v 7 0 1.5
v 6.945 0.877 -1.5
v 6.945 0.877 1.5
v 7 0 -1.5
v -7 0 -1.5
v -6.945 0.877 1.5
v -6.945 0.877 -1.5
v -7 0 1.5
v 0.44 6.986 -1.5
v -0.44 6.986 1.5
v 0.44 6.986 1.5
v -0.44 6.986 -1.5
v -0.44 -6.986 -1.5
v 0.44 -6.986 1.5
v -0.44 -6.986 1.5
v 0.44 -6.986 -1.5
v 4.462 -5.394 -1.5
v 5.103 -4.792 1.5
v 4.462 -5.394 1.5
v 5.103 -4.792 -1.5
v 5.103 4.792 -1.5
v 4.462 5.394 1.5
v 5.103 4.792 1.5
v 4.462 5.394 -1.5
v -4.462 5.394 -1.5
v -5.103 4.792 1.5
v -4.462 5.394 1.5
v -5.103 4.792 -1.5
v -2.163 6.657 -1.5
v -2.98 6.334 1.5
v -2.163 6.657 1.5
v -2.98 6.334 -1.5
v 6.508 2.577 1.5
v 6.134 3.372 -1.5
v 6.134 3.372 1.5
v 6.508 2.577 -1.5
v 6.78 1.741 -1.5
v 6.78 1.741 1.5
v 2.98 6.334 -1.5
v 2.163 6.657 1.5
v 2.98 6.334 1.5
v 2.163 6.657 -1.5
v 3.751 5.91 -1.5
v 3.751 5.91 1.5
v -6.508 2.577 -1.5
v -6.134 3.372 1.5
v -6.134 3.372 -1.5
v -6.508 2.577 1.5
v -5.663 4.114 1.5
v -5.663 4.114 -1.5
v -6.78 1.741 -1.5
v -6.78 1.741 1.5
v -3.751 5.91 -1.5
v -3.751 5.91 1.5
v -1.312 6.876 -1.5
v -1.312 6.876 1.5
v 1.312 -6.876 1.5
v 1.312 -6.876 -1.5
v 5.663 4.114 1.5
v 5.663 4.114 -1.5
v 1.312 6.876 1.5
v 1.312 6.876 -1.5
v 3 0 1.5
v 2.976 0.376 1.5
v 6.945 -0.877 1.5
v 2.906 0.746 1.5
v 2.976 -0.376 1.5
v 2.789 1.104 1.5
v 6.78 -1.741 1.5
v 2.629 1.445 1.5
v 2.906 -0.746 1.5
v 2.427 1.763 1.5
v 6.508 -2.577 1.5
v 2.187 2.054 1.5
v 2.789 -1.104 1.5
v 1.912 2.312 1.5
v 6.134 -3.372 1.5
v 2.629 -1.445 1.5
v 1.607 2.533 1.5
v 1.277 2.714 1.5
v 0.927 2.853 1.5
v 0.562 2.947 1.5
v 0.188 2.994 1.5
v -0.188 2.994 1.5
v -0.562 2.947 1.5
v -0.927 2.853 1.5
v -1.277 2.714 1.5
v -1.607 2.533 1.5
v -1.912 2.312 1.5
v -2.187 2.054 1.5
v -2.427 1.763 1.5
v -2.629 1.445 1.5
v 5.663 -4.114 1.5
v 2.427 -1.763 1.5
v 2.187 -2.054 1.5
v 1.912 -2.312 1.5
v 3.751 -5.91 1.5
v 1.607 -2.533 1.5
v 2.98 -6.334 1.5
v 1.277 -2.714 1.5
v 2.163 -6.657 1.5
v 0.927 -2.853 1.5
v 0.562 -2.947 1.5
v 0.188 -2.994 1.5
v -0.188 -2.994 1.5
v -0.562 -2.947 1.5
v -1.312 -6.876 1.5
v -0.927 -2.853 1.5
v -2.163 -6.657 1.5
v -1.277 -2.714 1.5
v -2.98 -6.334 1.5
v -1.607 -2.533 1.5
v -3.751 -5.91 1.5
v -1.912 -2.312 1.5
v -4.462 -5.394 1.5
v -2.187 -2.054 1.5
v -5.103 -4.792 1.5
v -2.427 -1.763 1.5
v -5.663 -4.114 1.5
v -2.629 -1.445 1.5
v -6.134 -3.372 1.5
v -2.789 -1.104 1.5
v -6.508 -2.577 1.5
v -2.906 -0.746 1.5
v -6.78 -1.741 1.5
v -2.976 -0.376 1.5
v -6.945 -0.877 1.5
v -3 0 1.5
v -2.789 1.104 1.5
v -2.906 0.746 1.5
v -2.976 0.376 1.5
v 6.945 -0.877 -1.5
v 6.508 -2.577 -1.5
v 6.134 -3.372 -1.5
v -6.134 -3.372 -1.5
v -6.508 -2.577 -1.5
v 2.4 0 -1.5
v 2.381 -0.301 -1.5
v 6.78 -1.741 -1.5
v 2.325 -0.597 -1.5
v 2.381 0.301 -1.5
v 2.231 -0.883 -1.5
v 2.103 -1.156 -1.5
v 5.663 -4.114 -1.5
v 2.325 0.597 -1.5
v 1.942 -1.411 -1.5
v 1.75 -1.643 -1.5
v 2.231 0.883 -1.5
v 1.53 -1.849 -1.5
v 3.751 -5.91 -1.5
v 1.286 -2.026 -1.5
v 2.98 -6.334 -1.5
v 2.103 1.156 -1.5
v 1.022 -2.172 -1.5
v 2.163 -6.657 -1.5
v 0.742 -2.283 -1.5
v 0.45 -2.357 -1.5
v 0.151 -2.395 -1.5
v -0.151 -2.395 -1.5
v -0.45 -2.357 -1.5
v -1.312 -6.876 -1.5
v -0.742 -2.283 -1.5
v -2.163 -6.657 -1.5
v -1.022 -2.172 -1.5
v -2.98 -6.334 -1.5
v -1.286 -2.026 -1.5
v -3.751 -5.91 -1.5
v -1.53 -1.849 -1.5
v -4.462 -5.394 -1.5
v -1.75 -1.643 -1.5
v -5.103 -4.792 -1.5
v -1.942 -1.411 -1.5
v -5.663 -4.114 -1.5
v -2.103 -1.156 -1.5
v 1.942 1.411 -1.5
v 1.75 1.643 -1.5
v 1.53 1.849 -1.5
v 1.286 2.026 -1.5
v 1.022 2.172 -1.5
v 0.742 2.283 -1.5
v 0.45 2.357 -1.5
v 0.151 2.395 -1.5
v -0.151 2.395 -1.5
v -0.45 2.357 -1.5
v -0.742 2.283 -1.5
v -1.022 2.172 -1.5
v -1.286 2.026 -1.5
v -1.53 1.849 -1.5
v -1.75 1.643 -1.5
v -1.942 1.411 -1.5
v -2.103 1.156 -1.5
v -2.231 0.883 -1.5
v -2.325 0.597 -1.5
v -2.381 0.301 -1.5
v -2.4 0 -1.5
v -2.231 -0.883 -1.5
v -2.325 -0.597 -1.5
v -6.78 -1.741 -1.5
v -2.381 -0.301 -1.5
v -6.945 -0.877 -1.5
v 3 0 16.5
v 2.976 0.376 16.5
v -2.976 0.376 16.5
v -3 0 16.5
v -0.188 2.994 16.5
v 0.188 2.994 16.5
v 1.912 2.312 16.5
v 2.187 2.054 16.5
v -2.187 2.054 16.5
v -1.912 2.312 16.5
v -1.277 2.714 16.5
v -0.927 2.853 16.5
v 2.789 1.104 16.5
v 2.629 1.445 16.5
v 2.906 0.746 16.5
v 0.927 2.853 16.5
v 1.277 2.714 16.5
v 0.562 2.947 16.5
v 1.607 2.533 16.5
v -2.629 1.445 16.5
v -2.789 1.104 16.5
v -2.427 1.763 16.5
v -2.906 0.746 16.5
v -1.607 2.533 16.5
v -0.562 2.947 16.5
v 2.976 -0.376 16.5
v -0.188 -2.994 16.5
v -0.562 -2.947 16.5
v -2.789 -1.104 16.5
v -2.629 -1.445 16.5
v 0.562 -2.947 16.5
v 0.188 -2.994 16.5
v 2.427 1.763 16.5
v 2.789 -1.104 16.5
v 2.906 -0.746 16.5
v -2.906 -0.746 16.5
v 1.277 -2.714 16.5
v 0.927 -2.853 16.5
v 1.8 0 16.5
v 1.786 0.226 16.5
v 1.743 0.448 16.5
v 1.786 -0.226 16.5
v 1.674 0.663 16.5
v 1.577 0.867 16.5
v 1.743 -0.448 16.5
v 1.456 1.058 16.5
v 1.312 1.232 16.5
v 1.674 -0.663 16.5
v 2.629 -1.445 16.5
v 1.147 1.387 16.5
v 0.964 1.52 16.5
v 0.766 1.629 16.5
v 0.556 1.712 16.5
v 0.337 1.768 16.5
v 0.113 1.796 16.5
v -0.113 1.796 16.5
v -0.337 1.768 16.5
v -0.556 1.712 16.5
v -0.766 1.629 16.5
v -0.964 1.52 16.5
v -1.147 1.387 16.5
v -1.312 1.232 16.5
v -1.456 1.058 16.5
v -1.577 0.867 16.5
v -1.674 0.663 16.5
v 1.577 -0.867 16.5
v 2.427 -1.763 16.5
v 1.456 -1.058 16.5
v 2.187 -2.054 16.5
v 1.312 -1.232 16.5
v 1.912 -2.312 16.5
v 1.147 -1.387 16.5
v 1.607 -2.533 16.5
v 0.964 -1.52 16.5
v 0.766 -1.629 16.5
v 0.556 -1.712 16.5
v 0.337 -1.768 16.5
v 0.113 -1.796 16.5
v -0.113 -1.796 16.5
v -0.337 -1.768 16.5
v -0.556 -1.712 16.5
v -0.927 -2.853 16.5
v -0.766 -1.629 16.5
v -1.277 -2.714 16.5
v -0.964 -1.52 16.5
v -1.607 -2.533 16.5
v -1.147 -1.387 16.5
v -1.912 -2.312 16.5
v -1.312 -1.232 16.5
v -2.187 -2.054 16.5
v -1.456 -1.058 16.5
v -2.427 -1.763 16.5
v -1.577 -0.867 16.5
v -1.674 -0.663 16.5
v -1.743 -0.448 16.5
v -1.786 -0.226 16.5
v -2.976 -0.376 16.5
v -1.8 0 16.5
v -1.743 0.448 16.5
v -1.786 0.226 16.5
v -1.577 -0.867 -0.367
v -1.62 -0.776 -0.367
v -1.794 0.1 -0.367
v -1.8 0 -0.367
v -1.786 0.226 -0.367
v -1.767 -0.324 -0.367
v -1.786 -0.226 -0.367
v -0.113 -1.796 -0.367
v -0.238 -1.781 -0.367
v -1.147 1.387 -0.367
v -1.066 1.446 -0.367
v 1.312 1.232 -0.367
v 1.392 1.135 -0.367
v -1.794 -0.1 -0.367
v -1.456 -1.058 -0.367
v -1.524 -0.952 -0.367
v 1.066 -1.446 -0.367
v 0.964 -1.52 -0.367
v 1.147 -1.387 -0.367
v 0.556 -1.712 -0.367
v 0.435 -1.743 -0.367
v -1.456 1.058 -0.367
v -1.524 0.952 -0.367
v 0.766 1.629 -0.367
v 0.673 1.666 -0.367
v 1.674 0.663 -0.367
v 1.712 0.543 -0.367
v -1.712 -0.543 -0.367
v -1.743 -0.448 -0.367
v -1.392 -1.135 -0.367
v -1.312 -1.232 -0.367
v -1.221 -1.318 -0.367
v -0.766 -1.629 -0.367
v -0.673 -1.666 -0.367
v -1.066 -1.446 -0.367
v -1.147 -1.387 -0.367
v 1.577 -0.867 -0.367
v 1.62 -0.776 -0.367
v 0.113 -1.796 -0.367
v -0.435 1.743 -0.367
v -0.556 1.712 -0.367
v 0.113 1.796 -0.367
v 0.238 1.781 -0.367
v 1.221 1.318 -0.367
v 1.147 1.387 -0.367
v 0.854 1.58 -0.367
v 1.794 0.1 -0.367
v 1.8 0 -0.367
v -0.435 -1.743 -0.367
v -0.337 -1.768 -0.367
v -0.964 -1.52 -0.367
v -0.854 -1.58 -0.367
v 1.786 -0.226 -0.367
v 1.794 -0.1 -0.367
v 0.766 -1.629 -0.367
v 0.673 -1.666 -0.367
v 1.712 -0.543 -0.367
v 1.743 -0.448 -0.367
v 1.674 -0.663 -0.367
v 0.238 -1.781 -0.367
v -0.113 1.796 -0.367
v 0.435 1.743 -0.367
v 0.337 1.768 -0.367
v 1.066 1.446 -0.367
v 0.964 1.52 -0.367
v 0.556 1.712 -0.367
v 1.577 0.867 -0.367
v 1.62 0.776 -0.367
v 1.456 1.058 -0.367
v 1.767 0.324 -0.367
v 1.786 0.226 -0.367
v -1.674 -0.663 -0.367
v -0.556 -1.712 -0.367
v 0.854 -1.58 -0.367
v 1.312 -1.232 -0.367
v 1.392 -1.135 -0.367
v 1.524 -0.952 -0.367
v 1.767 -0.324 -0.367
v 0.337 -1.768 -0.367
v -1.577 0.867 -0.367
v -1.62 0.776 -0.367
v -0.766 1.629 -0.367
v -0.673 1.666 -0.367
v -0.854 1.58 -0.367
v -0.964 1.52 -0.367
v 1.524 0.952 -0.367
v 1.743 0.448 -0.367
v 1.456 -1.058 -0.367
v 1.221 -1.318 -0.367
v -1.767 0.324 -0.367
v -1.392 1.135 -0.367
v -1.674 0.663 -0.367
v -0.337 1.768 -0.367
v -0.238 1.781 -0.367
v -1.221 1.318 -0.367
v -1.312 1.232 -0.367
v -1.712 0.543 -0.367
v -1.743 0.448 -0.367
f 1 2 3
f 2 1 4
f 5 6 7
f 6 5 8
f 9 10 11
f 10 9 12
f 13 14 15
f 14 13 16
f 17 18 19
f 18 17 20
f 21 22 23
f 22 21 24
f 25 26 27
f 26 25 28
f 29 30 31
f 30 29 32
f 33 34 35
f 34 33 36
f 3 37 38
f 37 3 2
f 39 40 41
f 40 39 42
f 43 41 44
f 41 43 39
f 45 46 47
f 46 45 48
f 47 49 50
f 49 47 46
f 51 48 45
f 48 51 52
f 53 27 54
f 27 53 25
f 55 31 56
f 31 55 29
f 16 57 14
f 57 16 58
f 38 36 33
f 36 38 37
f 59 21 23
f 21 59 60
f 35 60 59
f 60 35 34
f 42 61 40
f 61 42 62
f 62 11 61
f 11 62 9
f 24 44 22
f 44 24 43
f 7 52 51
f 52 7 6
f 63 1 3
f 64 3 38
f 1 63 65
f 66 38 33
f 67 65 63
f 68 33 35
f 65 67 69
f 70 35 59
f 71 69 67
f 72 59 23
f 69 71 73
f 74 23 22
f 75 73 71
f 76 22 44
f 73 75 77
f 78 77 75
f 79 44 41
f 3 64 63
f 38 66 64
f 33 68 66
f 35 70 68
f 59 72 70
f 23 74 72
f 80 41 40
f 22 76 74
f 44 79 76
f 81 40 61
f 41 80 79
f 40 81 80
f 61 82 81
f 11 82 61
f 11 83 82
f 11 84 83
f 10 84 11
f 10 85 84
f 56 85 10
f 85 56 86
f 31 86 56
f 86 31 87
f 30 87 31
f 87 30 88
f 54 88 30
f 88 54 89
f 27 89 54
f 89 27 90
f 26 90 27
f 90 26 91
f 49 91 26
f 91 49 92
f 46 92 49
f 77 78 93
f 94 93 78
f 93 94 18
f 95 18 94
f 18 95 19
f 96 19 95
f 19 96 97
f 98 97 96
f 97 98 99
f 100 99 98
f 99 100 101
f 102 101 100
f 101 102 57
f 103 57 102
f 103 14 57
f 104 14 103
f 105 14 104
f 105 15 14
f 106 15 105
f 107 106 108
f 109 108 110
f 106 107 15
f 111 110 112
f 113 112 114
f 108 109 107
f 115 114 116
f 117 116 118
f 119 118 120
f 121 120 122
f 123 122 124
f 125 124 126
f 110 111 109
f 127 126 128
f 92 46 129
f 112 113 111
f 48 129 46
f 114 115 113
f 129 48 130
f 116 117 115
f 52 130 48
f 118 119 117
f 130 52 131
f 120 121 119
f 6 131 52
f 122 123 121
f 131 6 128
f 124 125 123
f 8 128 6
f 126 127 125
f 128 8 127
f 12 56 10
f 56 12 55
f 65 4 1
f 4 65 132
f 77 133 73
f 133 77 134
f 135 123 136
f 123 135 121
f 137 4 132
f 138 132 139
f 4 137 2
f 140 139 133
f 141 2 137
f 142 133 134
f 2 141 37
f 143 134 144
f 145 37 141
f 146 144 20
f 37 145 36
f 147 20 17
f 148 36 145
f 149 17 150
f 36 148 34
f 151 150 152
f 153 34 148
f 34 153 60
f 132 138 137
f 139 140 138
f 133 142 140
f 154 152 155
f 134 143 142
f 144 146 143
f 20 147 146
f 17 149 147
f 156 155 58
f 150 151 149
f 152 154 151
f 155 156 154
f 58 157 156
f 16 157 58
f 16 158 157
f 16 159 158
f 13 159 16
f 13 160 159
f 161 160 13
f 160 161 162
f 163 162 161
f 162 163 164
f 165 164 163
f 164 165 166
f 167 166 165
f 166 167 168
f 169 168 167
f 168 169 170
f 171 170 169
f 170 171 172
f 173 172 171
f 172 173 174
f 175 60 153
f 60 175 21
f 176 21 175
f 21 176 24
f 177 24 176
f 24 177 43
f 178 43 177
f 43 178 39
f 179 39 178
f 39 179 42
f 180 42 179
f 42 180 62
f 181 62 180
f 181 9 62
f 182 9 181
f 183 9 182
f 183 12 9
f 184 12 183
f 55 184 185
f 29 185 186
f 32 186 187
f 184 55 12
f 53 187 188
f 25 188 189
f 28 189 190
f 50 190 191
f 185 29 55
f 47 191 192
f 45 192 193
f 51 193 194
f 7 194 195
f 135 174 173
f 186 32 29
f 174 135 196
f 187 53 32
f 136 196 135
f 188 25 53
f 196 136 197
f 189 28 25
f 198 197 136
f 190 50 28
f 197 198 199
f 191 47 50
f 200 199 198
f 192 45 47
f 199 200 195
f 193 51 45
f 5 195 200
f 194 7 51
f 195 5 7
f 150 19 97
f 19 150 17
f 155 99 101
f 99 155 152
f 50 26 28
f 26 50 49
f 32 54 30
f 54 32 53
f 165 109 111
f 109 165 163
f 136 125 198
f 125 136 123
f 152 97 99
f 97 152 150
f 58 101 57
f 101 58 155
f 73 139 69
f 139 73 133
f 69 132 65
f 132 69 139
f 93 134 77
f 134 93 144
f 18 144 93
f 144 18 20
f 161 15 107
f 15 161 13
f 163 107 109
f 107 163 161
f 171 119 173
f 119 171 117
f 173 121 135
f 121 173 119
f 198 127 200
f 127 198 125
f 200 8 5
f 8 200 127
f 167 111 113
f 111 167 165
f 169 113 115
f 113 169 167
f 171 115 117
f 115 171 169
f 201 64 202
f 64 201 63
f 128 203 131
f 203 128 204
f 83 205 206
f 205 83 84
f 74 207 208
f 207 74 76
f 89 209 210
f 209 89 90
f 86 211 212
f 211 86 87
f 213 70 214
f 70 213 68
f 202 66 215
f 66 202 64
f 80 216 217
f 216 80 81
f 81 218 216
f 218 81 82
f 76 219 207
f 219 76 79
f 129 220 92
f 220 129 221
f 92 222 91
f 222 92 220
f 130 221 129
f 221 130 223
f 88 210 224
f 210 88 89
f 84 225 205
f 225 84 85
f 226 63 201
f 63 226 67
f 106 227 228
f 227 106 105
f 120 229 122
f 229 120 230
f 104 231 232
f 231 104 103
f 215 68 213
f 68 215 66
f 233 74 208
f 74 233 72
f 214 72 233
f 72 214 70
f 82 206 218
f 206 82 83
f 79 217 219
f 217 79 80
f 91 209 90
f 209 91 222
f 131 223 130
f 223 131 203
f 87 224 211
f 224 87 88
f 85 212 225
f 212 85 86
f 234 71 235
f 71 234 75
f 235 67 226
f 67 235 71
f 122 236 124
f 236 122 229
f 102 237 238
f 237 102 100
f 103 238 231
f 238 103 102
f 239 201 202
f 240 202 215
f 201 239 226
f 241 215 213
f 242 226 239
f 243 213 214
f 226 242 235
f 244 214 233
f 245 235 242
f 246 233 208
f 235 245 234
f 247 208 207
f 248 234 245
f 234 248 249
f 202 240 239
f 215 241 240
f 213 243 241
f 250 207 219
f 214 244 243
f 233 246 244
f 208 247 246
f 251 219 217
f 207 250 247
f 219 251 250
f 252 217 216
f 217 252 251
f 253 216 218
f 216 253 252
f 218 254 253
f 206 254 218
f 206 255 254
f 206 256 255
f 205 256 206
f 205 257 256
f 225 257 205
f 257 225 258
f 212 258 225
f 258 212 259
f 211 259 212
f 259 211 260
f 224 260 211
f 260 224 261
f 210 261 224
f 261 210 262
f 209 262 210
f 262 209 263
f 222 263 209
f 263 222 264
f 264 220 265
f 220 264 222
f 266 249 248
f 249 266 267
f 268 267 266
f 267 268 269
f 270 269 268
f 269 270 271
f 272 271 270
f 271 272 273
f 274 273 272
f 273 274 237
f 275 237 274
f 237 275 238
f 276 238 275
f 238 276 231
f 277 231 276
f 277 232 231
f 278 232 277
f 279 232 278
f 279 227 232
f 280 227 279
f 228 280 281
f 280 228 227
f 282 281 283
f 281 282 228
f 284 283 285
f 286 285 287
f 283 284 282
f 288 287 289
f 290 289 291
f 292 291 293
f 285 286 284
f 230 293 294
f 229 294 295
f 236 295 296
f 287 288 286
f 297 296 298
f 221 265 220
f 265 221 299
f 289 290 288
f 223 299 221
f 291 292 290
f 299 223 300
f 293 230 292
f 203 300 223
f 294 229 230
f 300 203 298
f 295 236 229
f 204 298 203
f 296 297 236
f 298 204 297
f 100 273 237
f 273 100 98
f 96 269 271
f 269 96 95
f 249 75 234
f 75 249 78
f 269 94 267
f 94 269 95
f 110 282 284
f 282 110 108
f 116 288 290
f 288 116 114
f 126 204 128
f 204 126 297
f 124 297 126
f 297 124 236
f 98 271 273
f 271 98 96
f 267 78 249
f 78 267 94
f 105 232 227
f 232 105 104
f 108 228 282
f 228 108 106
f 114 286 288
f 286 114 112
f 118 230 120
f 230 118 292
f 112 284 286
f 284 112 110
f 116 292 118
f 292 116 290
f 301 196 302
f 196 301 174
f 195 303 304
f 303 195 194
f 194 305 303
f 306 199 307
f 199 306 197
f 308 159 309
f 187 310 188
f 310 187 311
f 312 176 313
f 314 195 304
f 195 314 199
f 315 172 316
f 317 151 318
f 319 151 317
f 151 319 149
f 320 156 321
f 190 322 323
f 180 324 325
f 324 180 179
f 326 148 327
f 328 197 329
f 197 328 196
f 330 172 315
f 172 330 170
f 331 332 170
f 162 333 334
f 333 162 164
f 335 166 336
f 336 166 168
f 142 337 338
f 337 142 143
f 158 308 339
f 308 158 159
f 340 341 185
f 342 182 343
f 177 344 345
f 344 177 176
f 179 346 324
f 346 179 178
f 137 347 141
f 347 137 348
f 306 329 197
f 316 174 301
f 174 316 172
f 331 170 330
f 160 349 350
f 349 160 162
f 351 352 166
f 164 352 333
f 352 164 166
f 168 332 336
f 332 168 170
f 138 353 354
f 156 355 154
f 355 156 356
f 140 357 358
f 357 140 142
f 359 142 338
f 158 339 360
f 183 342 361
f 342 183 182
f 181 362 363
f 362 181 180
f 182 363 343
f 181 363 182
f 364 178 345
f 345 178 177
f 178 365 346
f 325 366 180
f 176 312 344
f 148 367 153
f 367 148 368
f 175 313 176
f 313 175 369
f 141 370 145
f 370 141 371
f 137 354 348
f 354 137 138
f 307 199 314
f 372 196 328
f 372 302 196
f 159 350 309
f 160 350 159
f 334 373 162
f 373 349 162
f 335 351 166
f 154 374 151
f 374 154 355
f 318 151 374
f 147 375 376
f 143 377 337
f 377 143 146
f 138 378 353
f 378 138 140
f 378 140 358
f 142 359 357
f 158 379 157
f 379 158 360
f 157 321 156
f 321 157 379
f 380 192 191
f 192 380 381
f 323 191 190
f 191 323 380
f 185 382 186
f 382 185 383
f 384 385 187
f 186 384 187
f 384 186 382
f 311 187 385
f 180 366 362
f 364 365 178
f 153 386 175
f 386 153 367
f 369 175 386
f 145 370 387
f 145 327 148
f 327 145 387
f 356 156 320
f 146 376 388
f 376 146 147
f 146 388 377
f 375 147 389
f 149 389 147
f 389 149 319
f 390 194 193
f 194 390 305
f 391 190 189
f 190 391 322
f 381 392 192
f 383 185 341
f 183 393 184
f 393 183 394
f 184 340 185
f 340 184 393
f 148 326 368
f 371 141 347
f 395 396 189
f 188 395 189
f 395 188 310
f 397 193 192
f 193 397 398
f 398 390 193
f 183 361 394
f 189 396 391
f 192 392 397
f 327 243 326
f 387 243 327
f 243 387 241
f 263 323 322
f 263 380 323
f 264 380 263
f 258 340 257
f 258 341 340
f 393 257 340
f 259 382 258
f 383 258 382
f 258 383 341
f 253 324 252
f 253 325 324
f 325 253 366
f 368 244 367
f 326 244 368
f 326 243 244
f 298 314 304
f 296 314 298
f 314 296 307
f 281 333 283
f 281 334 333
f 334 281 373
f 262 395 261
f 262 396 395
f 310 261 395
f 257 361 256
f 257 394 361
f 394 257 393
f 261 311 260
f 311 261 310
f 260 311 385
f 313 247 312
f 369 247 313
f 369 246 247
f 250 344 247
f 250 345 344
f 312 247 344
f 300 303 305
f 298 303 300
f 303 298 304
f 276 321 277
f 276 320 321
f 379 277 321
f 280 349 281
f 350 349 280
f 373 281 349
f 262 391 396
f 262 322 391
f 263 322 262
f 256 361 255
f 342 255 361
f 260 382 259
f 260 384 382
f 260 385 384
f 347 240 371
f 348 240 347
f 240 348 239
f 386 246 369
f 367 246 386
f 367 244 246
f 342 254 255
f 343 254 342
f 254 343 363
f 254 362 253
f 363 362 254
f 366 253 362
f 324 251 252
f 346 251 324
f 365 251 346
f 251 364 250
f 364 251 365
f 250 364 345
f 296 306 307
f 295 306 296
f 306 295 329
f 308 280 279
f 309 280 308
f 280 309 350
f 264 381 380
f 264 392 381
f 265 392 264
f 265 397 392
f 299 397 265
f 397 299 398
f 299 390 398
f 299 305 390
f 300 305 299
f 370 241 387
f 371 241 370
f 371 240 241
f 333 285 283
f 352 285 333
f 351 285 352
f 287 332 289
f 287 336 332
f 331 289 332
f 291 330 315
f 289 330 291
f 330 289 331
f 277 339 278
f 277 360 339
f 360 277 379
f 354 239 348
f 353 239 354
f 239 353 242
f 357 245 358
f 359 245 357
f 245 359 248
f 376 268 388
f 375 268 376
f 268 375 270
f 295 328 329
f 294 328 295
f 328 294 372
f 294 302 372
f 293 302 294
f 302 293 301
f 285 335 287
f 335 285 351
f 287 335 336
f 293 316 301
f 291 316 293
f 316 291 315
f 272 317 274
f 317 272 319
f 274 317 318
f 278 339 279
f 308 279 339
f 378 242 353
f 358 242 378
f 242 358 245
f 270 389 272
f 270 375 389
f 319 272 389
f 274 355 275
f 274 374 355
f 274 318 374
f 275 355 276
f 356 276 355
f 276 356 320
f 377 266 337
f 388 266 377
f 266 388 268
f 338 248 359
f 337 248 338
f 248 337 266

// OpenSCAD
$fn = 50;


difference() {
	union() {
		translate(v = [0, 0, -1.5000000000]) {
			cylinder(h = 3, r = 7.0000000000);
		}
		translate(v = [0, 0, -1.5000000000]) {
			cylinder(h = 18, r = 3.0000000000);
		}
	}
	union() {
		translate(v = [0, 0, -1.5000000000]) {
			rotate(a = [0, 180, 0]) {
				difference() {
					union() {
						translate(v = [0, 0, -1.7000000000]) {
							cylinder(h = 1.7000000000, r1 = 1.5000000000, r2 = 2.4000000000);
						}
						translate(v = [0, 0, -18.0000000000]) {
							cylinder(h = 18, r = 1.5000000000);
						}
						translate(v = [0, 0, -18.0000000000]) {
							cylinder(h = 18, r = 1.8000000000);
						}
						translate(v = [0, 0, -18.0000000000]) {
							cylinder(h = 18, r = 1.5000000000);
						}
					}
					union();
				}
			}
		}
		translate(v = [0, 0, -50.0000000000]) {
			cylinder(h = 100, r = 1.5000000000);
		}
	}
}
